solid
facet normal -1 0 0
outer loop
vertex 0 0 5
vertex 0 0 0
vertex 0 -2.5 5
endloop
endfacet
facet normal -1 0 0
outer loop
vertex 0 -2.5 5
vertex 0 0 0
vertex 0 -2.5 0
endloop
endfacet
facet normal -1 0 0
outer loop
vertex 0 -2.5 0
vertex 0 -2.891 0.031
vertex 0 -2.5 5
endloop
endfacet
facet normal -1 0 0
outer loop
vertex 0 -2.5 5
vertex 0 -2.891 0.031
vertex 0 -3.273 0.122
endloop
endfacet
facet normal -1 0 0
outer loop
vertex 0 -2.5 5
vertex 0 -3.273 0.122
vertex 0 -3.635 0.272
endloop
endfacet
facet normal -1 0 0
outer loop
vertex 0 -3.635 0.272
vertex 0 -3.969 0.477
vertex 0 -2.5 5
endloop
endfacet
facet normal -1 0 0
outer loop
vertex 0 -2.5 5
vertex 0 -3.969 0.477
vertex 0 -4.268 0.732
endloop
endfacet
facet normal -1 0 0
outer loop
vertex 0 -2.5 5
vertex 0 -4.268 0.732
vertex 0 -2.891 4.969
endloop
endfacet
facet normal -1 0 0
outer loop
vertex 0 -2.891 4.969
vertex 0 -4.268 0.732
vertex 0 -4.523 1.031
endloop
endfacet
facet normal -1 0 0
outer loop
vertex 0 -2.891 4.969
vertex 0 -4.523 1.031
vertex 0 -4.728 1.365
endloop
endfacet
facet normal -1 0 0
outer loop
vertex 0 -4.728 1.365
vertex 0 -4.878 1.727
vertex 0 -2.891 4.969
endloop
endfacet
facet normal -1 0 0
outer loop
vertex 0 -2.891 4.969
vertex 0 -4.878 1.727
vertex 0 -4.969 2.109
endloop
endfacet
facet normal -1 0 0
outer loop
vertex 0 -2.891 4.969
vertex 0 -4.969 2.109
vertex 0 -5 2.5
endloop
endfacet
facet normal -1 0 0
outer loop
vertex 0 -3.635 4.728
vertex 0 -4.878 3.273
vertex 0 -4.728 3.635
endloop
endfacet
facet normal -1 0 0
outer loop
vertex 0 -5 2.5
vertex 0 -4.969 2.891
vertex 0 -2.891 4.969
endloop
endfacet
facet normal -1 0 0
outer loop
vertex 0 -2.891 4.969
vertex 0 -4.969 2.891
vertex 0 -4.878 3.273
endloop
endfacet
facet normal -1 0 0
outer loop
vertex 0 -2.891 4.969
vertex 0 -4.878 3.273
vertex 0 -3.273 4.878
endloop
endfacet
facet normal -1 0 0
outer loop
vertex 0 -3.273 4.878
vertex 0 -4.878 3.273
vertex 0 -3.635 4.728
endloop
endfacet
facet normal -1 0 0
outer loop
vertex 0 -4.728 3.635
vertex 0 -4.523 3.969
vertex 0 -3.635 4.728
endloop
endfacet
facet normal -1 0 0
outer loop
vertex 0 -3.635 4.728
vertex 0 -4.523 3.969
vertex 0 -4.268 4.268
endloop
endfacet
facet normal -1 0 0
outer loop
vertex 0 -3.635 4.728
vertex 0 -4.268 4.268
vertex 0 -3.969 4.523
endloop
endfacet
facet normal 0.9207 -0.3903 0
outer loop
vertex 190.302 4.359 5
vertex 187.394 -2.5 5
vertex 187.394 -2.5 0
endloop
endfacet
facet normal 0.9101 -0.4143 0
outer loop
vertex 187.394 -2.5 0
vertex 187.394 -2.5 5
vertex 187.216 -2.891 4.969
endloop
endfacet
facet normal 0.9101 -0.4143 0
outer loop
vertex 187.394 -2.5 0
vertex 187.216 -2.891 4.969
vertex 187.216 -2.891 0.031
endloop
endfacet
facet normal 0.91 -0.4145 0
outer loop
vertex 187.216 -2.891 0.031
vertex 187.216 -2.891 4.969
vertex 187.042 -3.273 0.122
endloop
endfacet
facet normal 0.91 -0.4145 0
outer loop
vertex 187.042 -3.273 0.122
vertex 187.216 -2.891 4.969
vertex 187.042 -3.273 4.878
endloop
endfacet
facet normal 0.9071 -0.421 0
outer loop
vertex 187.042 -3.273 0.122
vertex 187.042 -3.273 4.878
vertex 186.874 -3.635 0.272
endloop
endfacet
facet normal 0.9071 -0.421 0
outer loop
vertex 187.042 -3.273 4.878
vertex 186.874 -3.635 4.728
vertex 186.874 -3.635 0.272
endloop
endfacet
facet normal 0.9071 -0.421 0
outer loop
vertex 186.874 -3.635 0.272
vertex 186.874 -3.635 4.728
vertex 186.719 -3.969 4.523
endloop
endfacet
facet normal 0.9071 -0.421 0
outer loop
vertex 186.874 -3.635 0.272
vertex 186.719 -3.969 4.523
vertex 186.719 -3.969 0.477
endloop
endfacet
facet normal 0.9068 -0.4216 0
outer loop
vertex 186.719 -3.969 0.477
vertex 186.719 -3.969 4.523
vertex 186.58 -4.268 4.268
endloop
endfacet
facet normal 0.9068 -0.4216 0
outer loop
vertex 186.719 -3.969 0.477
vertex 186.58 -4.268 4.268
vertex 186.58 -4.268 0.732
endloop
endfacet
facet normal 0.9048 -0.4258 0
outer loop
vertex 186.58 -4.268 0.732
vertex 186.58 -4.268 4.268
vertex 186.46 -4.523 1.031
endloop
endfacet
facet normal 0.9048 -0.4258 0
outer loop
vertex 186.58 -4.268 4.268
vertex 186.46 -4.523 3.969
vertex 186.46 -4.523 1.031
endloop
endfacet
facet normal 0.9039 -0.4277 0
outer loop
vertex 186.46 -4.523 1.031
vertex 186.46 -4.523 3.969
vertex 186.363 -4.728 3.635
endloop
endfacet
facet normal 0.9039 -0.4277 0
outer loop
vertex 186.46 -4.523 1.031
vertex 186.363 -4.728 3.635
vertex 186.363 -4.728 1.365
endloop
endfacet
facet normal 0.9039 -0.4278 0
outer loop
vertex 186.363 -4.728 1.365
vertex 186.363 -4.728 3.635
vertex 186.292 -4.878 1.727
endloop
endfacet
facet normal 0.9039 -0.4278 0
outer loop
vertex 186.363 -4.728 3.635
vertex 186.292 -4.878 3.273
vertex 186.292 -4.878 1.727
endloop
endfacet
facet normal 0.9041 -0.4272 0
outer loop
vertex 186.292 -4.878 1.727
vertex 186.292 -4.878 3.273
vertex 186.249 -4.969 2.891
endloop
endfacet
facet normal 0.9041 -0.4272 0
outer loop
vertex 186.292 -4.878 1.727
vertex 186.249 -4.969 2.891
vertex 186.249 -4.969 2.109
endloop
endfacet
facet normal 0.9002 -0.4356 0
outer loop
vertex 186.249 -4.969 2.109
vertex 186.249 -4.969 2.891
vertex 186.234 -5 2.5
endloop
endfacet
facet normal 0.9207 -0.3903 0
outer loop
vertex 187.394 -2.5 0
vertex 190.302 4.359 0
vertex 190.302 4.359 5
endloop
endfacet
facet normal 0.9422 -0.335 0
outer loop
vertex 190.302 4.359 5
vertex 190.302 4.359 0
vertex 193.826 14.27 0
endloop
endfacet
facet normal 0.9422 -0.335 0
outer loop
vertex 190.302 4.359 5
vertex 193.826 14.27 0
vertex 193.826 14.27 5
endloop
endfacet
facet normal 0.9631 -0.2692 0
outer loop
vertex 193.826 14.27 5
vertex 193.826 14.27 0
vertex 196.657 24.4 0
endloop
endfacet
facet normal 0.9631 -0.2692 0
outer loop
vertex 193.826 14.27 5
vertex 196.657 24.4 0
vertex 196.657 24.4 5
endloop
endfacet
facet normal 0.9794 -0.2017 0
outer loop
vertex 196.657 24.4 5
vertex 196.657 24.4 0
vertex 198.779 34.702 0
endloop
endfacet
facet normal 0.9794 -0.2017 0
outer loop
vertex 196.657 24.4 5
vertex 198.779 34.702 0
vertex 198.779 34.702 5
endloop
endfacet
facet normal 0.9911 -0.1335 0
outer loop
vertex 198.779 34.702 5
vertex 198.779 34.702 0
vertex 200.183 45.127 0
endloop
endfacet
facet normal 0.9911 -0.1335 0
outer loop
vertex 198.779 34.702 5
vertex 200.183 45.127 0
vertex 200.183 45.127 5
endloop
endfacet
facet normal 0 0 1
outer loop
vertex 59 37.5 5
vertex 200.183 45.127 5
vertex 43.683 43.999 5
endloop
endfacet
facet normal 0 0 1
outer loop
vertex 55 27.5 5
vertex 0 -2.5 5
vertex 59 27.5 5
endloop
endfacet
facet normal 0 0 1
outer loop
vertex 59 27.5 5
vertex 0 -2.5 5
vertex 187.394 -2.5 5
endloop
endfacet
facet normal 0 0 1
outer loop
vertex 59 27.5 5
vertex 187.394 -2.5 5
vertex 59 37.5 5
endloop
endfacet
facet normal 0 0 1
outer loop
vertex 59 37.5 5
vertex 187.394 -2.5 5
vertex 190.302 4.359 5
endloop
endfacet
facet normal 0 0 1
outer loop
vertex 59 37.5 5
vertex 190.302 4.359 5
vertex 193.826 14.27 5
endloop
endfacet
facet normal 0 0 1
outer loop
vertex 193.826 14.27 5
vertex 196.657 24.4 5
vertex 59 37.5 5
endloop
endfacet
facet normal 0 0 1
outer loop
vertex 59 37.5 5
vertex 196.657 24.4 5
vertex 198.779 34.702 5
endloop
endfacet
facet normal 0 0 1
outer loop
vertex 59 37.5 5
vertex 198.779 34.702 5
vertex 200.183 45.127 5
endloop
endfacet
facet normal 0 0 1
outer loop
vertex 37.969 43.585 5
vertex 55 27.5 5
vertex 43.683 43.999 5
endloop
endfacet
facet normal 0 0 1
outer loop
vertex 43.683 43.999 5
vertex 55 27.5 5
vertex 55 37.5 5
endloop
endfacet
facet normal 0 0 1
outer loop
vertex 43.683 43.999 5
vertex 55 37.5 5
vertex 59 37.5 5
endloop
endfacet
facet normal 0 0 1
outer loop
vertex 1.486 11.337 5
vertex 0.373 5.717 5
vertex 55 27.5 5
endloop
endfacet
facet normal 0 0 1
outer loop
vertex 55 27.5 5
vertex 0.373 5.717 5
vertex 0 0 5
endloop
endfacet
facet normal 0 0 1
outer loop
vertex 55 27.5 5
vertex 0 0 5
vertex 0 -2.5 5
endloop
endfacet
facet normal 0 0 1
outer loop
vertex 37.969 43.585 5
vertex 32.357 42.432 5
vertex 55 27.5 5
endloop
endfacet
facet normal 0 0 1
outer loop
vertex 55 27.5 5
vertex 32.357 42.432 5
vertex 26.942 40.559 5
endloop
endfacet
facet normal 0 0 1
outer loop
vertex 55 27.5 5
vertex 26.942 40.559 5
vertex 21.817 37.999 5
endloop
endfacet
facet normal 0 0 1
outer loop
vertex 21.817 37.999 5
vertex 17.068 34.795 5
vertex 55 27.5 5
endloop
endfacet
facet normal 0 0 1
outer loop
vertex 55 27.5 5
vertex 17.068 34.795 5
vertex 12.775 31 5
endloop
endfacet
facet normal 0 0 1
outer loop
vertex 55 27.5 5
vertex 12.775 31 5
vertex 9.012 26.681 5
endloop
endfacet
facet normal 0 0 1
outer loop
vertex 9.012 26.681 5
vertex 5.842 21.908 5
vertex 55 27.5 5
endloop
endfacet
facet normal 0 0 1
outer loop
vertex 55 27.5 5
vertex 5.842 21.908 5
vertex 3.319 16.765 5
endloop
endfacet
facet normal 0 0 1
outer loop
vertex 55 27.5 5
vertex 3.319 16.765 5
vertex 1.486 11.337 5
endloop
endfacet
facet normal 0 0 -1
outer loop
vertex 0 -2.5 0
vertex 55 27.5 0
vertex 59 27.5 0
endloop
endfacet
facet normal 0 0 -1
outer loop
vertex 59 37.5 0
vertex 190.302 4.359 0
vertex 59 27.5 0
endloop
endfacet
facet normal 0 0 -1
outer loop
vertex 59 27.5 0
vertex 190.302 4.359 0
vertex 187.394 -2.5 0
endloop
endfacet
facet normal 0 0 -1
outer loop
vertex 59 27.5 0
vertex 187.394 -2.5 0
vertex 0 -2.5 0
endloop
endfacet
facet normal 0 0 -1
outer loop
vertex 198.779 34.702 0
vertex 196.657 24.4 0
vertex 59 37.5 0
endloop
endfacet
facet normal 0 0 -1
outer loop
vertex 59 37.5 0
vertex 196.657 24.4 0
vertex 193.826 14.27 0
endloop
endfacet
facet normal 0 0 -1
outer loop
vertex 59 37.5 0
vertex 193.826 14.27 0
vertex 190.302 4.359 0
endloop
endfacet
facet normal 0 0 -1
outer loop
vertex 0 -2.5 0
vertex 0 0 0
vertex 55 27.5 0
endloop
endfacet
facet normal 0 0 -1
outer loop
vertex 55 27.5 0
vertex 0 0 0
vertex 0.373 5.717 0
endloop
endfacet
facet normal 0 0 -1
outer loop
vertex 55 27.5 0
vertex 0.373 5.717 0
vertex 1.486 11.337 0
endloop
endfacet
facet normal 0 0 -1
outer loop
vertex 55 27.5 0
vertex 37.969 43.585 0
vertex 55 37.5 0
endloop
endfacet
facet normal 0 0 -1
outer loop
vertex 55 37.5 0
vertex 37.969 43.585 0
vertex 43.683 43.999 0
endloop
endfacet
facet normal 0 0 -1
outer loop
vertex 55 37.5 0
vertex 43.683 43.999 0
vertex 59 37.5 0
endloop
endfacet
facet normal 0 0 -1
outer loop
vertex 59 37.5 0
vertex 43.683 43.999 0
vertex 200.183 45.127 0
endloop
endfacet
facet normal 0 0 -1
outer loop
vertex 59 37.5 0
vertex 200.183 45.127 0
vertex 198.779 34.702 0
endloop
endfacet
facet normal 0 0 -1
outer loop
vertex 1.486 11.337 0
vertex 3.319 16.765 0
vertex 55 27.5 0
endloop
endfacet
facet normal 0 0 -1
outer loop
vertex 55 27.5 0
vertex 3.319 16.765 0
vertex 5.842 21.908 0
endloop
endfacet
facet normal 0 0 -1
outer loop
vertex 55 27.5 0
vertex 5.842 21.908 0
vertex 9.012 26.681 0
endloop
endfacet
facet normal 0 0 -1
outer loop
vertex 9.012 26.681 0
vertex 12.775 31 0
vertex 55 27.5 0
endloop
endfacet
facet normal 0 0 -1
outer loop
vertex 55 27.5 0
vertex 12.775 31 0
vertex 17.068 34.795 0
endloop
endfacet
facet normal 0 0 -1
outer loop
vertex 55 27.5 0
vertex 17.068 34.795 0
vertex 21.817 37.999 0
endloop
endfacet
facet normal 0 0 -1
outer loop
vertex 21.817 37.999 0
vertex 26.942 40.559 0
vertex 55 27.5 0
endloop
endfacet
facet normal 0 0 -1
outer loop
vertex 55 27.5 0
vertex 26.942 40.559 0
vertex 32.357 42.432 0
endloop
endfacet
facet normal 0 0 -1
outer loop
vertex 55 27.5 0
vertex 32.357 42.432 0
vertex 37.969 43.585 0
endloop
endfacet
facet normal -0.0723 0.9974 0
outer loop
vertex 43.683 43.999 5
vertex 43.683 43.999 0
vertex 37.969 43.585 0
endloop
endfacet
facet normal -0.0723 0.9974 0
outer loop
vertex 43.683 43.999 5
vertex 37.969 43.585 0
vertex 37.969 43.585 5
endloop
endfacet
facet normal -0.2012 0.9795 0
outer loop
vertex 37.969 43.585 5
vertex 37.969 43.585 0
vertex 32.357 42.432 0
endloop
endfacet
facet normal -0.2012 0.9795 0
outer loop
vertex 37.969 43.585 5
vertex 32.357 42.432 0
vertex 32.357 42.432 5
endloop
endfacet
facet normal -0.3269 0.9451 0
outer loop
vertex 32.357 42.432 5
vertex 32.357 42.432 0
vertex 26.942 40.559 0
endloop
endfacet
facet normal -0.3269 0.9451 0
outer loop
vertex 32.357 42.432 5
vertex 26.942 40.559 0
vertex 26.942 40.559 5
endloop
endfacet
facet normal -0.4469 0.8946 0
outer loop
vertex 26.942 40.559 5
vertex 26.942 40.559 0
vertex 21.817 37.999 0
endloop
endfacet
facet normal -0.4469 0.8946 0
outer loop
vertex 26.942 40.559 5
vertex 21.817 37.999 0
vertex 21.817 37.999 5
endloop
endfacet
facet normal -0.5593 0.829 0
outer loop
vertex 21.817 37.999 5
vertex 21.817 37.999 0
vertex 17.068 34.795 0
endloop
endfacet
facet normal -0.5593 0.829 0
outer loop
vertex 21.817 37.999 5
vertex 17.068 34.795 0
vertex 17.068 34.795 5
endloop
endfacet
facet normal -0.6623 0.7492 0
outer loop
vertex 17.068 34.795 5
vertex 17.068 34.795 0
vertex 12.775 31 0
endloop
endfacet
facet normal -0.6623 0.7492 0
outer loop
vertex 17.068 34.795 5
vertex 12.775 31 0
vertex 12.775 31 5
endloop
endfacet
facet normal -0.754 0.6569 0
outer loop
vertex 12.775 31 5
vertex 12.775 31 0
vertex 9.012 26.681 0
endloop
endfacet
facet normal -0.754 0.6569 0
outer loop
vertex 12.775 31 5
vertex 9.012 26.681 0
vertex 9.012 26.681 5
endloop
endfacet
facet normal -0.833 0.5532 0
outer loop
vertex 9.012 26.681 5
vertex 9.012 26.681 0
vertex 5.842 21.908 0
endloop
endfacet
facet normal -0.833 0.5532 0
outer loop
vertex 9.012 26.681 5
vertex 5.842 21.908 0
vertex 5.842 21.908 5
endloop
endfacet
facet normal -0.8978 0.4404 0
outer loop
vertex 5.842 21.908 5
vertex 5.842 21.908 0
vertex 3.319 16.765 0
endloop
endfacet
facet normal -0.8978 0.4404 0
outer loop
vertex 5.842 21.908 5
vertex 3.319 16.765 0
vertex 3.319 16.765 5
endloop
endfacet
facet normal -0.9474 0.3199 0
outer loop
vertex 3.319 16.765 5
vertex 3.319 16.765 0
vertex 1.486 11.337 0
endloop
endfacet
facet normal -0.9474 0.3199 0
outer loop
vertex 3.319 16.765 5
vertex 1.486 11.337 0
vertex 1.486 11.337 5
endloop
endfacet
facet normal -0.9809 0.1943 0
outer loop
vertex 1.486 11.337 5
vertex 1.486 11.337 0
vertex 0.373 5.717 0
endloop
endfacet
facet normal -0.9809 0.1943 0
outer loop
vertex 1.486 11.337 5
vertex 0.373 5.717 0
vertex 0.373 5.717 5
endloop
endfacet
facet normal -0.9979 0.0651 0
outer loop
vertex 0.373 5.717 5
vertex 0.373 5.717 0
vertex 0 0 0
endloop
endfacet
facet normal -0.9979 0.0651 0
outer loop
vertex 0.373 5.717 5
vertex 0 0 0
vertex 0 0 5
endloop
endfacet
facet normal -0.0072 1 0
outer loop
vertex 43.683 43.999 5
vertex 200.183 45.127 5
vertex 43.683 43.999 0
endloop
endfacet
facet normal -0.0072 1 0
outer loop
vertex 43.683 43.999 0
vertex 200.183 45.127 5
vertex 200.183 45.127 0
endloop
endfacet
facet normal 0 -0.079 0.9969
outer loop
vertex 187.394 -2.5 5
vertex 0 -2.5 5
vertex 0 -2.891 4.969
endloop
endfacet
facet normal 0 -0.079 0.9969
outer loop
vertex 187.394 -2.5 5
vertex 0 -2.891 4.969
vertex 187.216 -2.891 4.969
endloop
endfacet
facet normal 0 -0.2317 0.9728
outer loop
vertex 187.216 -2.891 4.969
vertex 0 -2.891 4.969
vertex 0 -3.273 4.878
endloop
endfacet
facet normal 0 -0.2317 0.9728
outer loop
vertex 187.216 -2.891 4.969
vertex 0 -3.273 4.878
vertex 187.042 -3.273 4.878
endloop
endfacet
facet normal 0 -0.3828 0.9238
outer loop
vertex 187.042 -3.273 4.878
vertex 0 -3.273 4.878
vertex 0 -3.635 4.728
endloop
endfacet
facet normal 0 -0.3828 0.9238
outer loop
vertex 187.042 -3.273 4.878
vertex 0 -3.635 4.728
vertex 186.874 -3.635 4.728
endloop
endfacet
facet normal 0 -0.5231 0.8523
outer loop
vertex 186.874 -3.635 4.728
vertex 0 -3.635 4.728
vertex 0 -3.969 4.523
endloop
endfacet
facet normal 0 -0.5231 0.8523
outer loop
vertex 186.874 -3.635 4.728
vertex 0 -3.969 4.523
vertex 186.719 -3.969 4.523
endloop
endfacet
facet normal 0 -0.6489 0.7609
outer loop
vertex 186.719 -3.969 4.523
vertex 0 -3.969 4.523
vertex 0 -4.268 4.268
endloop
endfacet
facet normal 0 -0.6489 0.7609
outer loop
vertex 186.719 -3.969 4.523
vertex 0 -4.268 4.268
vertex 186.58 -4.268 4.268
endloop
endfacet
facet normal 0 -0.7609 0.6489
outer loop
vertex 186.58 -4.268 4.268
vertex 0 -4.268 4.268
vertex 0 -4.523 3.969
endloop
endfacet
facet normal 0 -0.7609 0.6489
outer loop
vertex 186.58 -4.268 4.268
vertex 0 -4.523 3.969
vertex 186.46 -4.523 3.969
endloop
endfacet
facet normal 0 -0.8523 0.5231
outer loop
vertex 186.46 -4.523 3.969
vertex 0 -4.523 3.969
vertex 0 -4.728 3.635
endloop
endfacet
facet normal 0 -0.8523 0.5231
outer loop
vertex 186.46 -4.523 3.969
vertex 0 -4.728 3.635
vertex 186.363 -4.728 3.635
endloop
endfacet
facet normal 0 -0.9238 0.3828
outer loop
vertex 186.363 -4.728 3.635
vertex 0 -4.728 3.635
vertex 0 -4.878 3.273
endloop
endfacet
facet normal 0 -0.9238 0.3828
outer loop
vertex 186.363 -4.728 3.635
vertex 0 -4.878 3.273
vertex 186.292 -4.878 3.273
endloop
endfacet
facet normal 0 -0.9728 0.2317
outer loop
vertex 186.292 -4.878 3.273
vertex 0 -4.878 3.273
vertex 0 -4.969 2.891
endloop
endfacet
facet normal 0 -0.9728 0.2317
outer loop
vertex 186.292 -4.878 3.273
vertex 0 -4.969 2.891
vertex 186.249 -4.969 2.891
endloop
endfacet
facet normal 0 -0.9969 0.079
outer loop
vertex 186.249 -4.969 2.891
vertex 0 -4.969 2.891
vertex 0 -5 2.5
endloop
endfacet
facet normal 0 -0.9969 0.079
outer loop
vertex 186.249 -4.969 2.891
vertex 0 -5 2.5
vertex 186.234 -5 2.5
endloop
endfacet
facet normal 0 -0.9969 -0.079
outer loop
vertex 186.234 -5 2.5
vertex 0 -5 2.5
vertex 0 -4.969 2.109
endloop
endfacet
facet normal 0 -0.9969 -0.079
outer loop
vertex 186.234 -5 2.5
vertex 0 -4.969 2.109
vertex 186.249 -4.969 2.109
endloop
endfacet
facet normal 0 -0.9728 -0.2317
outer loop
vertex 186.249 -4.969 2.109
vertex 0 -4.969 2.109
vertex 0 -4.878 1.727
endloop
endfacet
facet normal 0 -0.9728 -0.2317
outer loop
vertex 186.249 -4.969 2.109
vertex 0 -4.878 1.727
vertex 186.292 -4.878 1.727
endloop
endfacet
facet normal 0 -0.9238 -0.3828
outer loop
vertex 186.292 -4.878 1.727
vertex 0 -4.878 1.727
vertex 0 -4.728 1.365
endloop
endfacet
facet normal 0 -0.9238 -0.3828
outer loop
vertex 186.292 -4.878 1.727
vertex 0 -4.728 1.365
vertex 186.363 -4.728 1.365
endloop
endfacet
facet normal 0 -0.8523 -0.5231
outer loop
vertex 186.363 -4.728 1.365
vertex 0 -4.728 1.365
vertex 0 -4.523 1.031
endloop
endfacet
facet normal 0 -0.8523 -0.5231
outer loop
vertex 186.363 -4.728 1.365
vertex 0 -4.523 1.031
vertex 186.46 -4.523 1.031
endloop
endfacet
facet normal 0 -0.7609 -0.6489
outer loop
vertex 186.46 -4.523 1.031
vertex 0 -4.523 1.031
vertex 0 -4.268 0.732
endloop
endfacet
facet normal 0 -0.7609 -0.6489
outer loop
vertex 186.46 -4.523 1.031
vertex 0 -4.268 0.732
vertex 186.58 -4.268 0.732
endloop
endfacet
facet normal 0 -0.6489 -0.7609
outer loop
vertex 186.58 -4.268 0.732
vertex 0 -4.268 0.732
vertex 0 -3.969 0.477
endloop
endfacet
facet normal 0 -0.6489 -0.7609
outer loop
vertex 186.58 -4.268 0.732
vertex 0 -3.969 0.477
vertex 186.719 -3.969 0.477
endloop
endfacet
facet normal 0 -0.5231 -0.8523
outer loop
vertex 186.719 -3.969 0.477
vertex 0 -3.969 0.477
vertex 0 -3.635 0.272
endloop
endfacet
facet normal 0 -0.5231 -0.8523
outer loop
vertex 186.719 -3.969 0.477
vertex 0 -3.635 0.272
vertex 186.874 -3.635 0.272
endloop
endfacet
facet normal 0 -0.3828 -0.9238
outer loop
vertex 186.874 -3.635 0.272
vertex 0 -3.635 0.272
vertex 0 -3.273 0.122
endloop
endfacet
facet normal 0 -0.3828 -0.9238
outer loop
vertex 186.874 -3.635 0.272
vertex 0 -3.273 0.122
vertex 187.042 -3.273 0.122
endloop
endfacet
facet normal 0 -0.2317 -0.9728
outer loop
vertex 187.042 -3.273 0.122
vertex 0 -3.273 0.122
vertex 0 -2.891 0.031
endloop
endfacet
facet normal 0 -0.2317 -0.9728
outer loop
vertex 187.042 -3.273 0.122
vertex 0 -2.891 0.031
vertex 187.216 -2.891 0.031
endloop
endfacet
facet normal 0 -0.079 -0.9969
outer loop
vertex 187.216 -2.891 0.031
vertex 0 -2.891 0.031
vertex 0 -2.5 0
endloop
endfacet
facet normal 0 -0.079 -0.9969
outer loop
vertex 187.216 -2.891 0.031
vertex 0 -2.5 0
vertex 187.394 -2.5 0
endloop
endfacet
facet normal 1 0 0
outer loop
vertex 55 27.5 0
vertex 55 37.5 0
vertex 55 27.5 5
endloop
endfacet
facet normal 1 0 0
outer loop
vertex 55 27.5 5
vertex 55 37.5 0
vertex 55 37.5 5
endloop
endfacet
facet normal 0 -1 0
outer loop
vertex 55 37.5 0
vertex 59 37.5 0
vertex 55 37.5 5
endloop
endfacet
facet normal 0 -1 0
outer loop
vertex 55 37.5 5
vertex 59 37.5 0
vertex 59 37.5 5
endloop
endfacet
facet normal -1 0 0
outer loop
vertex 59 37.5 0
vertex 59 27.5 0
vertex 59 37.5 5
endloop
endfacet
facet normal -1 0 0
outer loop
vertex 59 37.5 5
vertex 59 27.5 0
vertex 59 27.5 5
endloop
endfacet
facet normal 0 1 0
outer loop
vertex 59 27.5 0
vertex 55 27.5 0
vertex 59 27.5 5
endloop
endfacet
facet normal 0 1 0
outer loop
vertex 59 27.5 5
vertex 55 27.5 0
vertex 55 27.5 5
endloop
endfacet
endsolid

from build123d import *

# Parameters (mm, degrees)
BOSS_EXTRU_1_DEPTH      = 5
ESQUISSE3_W             = 10
ESQUISSE3_H             = 3
ENL_V_MAT_EXTRU_1_DEPTH = 231.967242256
ENL_V_MAT_EXTRU_2_DEPTH = 231.967242256
ESQUISSE2_W             = 203.424903091
ESQUISSE2_H             = 131.549645995
ENL_V_MAT_EXTRU_3_DEPTH = 231.967242256
CONG_1_R                = 2.5
ESQUISSE5_W             = 4
ESQUISSE5_H             = 10
ENL_V_MAT_EXTRU_4_DEPTH = 206.267190359


with BuildPart() as part:
    # Esquisse1 → Boss.-Extru.1 (new body)
    with BuildSketch(Plane.XY):
        with BuildLine():
            Line((0, 0), (0, -25))
            Line((0, -25), (37.5, -25))
            Line((37.5, -25), (37.5, -95.5))
            Line((37.5, -95.5), (32.5, -95.5))
            Line((32.5, -95.5), (36.487358688, -115.098494092))
            Line((36.487358688, -115.098494092), (88.487358688, -115.098494092))
            Line((88.487358688, -115.098494092), (159.198036807, -44.387815974))
            ThreePointArc((159.198036807, -44.387815974), (187.146342861, -3.044299659), (200.182925478, 45.126663235))
            Line((200.182925478, 45.126663235), (43.682925478, 43.998857528))
            ThreePointArc((43.682925478, 43.998857528), (12.775400091, 31.000392909), (0, 0))
        make_face()
    extrude(amount=BOSS_EXTRU_1_DEPTH)

    # Esquisse3 → Enlèv. mat.-Extru.1 (cut, through all)
    with BuildSketch(Plane.XY.offset(5)):
        with Locations((5, -23.5)):
            Rectangle(ESQUISSE3_W, ESQUISSE3_H)
    extrude(amount=-ENL_V_MAT_EXTRU_1_DEPTH, mode=Mode.SUBTRACT)

    # Esquisse4 → Enlèv. mat.-Extru.2 (cut, through all)
    with BuildSketch(Plane.XY.offset(5)):
        Polygon((88.487358688, -105.098494092), (78.487358688, -105.098494092), (78.487358688, -111.098494092), (68.487358688, -115.098494092), (78.487358688, -115.098494092), (88.487358688, -115.098494092), (98.487358688, -105.098494092), align=None)
    extrude(amount=-ENL_V_MAT_EXTRU_2_DEPTH, mode=Mode.SUBTRACT)

    # Esquisse2 → Enlèv. mat.-Extru.3 (cut, through all)
    with BuildSketch(Plane.XY.offset(5)):
        with Locations((101.712451546, -70.774822998)):
            Rectangle(ESQUISSE2_W, ESQUISSE2_H)
    extrude(amount=-ENL_V_MAT_EXTRU_3_DEPTH, mode=Mode.SUBTRACT)

    # Congé1
    cong_1_edges = [part.edges().sort_by_distance(p)[0] for p in [
        (93.117022594, -5, 0),
        (93.117022594, -5, 5),
    ]]
    fillet(cong_1_edges, radius=CONG_1_R - 0.0001)  # a hair under: the kernel refuses the full size

    # Esquisse5 → Enlèv. mat.-Extru.4 (cut, through all)
    with BuildSketch(Plane.XY.offset(5)):
        with Locations((57, 32.5)):
            Rectangle(ESQUISSE5_W, ESQUISSE5_H)
    extrude(amount=-ENL_V_MAT_EXTRU_4_DEPTH, mode=Mode.SUBTRACT)


solid = part.part
